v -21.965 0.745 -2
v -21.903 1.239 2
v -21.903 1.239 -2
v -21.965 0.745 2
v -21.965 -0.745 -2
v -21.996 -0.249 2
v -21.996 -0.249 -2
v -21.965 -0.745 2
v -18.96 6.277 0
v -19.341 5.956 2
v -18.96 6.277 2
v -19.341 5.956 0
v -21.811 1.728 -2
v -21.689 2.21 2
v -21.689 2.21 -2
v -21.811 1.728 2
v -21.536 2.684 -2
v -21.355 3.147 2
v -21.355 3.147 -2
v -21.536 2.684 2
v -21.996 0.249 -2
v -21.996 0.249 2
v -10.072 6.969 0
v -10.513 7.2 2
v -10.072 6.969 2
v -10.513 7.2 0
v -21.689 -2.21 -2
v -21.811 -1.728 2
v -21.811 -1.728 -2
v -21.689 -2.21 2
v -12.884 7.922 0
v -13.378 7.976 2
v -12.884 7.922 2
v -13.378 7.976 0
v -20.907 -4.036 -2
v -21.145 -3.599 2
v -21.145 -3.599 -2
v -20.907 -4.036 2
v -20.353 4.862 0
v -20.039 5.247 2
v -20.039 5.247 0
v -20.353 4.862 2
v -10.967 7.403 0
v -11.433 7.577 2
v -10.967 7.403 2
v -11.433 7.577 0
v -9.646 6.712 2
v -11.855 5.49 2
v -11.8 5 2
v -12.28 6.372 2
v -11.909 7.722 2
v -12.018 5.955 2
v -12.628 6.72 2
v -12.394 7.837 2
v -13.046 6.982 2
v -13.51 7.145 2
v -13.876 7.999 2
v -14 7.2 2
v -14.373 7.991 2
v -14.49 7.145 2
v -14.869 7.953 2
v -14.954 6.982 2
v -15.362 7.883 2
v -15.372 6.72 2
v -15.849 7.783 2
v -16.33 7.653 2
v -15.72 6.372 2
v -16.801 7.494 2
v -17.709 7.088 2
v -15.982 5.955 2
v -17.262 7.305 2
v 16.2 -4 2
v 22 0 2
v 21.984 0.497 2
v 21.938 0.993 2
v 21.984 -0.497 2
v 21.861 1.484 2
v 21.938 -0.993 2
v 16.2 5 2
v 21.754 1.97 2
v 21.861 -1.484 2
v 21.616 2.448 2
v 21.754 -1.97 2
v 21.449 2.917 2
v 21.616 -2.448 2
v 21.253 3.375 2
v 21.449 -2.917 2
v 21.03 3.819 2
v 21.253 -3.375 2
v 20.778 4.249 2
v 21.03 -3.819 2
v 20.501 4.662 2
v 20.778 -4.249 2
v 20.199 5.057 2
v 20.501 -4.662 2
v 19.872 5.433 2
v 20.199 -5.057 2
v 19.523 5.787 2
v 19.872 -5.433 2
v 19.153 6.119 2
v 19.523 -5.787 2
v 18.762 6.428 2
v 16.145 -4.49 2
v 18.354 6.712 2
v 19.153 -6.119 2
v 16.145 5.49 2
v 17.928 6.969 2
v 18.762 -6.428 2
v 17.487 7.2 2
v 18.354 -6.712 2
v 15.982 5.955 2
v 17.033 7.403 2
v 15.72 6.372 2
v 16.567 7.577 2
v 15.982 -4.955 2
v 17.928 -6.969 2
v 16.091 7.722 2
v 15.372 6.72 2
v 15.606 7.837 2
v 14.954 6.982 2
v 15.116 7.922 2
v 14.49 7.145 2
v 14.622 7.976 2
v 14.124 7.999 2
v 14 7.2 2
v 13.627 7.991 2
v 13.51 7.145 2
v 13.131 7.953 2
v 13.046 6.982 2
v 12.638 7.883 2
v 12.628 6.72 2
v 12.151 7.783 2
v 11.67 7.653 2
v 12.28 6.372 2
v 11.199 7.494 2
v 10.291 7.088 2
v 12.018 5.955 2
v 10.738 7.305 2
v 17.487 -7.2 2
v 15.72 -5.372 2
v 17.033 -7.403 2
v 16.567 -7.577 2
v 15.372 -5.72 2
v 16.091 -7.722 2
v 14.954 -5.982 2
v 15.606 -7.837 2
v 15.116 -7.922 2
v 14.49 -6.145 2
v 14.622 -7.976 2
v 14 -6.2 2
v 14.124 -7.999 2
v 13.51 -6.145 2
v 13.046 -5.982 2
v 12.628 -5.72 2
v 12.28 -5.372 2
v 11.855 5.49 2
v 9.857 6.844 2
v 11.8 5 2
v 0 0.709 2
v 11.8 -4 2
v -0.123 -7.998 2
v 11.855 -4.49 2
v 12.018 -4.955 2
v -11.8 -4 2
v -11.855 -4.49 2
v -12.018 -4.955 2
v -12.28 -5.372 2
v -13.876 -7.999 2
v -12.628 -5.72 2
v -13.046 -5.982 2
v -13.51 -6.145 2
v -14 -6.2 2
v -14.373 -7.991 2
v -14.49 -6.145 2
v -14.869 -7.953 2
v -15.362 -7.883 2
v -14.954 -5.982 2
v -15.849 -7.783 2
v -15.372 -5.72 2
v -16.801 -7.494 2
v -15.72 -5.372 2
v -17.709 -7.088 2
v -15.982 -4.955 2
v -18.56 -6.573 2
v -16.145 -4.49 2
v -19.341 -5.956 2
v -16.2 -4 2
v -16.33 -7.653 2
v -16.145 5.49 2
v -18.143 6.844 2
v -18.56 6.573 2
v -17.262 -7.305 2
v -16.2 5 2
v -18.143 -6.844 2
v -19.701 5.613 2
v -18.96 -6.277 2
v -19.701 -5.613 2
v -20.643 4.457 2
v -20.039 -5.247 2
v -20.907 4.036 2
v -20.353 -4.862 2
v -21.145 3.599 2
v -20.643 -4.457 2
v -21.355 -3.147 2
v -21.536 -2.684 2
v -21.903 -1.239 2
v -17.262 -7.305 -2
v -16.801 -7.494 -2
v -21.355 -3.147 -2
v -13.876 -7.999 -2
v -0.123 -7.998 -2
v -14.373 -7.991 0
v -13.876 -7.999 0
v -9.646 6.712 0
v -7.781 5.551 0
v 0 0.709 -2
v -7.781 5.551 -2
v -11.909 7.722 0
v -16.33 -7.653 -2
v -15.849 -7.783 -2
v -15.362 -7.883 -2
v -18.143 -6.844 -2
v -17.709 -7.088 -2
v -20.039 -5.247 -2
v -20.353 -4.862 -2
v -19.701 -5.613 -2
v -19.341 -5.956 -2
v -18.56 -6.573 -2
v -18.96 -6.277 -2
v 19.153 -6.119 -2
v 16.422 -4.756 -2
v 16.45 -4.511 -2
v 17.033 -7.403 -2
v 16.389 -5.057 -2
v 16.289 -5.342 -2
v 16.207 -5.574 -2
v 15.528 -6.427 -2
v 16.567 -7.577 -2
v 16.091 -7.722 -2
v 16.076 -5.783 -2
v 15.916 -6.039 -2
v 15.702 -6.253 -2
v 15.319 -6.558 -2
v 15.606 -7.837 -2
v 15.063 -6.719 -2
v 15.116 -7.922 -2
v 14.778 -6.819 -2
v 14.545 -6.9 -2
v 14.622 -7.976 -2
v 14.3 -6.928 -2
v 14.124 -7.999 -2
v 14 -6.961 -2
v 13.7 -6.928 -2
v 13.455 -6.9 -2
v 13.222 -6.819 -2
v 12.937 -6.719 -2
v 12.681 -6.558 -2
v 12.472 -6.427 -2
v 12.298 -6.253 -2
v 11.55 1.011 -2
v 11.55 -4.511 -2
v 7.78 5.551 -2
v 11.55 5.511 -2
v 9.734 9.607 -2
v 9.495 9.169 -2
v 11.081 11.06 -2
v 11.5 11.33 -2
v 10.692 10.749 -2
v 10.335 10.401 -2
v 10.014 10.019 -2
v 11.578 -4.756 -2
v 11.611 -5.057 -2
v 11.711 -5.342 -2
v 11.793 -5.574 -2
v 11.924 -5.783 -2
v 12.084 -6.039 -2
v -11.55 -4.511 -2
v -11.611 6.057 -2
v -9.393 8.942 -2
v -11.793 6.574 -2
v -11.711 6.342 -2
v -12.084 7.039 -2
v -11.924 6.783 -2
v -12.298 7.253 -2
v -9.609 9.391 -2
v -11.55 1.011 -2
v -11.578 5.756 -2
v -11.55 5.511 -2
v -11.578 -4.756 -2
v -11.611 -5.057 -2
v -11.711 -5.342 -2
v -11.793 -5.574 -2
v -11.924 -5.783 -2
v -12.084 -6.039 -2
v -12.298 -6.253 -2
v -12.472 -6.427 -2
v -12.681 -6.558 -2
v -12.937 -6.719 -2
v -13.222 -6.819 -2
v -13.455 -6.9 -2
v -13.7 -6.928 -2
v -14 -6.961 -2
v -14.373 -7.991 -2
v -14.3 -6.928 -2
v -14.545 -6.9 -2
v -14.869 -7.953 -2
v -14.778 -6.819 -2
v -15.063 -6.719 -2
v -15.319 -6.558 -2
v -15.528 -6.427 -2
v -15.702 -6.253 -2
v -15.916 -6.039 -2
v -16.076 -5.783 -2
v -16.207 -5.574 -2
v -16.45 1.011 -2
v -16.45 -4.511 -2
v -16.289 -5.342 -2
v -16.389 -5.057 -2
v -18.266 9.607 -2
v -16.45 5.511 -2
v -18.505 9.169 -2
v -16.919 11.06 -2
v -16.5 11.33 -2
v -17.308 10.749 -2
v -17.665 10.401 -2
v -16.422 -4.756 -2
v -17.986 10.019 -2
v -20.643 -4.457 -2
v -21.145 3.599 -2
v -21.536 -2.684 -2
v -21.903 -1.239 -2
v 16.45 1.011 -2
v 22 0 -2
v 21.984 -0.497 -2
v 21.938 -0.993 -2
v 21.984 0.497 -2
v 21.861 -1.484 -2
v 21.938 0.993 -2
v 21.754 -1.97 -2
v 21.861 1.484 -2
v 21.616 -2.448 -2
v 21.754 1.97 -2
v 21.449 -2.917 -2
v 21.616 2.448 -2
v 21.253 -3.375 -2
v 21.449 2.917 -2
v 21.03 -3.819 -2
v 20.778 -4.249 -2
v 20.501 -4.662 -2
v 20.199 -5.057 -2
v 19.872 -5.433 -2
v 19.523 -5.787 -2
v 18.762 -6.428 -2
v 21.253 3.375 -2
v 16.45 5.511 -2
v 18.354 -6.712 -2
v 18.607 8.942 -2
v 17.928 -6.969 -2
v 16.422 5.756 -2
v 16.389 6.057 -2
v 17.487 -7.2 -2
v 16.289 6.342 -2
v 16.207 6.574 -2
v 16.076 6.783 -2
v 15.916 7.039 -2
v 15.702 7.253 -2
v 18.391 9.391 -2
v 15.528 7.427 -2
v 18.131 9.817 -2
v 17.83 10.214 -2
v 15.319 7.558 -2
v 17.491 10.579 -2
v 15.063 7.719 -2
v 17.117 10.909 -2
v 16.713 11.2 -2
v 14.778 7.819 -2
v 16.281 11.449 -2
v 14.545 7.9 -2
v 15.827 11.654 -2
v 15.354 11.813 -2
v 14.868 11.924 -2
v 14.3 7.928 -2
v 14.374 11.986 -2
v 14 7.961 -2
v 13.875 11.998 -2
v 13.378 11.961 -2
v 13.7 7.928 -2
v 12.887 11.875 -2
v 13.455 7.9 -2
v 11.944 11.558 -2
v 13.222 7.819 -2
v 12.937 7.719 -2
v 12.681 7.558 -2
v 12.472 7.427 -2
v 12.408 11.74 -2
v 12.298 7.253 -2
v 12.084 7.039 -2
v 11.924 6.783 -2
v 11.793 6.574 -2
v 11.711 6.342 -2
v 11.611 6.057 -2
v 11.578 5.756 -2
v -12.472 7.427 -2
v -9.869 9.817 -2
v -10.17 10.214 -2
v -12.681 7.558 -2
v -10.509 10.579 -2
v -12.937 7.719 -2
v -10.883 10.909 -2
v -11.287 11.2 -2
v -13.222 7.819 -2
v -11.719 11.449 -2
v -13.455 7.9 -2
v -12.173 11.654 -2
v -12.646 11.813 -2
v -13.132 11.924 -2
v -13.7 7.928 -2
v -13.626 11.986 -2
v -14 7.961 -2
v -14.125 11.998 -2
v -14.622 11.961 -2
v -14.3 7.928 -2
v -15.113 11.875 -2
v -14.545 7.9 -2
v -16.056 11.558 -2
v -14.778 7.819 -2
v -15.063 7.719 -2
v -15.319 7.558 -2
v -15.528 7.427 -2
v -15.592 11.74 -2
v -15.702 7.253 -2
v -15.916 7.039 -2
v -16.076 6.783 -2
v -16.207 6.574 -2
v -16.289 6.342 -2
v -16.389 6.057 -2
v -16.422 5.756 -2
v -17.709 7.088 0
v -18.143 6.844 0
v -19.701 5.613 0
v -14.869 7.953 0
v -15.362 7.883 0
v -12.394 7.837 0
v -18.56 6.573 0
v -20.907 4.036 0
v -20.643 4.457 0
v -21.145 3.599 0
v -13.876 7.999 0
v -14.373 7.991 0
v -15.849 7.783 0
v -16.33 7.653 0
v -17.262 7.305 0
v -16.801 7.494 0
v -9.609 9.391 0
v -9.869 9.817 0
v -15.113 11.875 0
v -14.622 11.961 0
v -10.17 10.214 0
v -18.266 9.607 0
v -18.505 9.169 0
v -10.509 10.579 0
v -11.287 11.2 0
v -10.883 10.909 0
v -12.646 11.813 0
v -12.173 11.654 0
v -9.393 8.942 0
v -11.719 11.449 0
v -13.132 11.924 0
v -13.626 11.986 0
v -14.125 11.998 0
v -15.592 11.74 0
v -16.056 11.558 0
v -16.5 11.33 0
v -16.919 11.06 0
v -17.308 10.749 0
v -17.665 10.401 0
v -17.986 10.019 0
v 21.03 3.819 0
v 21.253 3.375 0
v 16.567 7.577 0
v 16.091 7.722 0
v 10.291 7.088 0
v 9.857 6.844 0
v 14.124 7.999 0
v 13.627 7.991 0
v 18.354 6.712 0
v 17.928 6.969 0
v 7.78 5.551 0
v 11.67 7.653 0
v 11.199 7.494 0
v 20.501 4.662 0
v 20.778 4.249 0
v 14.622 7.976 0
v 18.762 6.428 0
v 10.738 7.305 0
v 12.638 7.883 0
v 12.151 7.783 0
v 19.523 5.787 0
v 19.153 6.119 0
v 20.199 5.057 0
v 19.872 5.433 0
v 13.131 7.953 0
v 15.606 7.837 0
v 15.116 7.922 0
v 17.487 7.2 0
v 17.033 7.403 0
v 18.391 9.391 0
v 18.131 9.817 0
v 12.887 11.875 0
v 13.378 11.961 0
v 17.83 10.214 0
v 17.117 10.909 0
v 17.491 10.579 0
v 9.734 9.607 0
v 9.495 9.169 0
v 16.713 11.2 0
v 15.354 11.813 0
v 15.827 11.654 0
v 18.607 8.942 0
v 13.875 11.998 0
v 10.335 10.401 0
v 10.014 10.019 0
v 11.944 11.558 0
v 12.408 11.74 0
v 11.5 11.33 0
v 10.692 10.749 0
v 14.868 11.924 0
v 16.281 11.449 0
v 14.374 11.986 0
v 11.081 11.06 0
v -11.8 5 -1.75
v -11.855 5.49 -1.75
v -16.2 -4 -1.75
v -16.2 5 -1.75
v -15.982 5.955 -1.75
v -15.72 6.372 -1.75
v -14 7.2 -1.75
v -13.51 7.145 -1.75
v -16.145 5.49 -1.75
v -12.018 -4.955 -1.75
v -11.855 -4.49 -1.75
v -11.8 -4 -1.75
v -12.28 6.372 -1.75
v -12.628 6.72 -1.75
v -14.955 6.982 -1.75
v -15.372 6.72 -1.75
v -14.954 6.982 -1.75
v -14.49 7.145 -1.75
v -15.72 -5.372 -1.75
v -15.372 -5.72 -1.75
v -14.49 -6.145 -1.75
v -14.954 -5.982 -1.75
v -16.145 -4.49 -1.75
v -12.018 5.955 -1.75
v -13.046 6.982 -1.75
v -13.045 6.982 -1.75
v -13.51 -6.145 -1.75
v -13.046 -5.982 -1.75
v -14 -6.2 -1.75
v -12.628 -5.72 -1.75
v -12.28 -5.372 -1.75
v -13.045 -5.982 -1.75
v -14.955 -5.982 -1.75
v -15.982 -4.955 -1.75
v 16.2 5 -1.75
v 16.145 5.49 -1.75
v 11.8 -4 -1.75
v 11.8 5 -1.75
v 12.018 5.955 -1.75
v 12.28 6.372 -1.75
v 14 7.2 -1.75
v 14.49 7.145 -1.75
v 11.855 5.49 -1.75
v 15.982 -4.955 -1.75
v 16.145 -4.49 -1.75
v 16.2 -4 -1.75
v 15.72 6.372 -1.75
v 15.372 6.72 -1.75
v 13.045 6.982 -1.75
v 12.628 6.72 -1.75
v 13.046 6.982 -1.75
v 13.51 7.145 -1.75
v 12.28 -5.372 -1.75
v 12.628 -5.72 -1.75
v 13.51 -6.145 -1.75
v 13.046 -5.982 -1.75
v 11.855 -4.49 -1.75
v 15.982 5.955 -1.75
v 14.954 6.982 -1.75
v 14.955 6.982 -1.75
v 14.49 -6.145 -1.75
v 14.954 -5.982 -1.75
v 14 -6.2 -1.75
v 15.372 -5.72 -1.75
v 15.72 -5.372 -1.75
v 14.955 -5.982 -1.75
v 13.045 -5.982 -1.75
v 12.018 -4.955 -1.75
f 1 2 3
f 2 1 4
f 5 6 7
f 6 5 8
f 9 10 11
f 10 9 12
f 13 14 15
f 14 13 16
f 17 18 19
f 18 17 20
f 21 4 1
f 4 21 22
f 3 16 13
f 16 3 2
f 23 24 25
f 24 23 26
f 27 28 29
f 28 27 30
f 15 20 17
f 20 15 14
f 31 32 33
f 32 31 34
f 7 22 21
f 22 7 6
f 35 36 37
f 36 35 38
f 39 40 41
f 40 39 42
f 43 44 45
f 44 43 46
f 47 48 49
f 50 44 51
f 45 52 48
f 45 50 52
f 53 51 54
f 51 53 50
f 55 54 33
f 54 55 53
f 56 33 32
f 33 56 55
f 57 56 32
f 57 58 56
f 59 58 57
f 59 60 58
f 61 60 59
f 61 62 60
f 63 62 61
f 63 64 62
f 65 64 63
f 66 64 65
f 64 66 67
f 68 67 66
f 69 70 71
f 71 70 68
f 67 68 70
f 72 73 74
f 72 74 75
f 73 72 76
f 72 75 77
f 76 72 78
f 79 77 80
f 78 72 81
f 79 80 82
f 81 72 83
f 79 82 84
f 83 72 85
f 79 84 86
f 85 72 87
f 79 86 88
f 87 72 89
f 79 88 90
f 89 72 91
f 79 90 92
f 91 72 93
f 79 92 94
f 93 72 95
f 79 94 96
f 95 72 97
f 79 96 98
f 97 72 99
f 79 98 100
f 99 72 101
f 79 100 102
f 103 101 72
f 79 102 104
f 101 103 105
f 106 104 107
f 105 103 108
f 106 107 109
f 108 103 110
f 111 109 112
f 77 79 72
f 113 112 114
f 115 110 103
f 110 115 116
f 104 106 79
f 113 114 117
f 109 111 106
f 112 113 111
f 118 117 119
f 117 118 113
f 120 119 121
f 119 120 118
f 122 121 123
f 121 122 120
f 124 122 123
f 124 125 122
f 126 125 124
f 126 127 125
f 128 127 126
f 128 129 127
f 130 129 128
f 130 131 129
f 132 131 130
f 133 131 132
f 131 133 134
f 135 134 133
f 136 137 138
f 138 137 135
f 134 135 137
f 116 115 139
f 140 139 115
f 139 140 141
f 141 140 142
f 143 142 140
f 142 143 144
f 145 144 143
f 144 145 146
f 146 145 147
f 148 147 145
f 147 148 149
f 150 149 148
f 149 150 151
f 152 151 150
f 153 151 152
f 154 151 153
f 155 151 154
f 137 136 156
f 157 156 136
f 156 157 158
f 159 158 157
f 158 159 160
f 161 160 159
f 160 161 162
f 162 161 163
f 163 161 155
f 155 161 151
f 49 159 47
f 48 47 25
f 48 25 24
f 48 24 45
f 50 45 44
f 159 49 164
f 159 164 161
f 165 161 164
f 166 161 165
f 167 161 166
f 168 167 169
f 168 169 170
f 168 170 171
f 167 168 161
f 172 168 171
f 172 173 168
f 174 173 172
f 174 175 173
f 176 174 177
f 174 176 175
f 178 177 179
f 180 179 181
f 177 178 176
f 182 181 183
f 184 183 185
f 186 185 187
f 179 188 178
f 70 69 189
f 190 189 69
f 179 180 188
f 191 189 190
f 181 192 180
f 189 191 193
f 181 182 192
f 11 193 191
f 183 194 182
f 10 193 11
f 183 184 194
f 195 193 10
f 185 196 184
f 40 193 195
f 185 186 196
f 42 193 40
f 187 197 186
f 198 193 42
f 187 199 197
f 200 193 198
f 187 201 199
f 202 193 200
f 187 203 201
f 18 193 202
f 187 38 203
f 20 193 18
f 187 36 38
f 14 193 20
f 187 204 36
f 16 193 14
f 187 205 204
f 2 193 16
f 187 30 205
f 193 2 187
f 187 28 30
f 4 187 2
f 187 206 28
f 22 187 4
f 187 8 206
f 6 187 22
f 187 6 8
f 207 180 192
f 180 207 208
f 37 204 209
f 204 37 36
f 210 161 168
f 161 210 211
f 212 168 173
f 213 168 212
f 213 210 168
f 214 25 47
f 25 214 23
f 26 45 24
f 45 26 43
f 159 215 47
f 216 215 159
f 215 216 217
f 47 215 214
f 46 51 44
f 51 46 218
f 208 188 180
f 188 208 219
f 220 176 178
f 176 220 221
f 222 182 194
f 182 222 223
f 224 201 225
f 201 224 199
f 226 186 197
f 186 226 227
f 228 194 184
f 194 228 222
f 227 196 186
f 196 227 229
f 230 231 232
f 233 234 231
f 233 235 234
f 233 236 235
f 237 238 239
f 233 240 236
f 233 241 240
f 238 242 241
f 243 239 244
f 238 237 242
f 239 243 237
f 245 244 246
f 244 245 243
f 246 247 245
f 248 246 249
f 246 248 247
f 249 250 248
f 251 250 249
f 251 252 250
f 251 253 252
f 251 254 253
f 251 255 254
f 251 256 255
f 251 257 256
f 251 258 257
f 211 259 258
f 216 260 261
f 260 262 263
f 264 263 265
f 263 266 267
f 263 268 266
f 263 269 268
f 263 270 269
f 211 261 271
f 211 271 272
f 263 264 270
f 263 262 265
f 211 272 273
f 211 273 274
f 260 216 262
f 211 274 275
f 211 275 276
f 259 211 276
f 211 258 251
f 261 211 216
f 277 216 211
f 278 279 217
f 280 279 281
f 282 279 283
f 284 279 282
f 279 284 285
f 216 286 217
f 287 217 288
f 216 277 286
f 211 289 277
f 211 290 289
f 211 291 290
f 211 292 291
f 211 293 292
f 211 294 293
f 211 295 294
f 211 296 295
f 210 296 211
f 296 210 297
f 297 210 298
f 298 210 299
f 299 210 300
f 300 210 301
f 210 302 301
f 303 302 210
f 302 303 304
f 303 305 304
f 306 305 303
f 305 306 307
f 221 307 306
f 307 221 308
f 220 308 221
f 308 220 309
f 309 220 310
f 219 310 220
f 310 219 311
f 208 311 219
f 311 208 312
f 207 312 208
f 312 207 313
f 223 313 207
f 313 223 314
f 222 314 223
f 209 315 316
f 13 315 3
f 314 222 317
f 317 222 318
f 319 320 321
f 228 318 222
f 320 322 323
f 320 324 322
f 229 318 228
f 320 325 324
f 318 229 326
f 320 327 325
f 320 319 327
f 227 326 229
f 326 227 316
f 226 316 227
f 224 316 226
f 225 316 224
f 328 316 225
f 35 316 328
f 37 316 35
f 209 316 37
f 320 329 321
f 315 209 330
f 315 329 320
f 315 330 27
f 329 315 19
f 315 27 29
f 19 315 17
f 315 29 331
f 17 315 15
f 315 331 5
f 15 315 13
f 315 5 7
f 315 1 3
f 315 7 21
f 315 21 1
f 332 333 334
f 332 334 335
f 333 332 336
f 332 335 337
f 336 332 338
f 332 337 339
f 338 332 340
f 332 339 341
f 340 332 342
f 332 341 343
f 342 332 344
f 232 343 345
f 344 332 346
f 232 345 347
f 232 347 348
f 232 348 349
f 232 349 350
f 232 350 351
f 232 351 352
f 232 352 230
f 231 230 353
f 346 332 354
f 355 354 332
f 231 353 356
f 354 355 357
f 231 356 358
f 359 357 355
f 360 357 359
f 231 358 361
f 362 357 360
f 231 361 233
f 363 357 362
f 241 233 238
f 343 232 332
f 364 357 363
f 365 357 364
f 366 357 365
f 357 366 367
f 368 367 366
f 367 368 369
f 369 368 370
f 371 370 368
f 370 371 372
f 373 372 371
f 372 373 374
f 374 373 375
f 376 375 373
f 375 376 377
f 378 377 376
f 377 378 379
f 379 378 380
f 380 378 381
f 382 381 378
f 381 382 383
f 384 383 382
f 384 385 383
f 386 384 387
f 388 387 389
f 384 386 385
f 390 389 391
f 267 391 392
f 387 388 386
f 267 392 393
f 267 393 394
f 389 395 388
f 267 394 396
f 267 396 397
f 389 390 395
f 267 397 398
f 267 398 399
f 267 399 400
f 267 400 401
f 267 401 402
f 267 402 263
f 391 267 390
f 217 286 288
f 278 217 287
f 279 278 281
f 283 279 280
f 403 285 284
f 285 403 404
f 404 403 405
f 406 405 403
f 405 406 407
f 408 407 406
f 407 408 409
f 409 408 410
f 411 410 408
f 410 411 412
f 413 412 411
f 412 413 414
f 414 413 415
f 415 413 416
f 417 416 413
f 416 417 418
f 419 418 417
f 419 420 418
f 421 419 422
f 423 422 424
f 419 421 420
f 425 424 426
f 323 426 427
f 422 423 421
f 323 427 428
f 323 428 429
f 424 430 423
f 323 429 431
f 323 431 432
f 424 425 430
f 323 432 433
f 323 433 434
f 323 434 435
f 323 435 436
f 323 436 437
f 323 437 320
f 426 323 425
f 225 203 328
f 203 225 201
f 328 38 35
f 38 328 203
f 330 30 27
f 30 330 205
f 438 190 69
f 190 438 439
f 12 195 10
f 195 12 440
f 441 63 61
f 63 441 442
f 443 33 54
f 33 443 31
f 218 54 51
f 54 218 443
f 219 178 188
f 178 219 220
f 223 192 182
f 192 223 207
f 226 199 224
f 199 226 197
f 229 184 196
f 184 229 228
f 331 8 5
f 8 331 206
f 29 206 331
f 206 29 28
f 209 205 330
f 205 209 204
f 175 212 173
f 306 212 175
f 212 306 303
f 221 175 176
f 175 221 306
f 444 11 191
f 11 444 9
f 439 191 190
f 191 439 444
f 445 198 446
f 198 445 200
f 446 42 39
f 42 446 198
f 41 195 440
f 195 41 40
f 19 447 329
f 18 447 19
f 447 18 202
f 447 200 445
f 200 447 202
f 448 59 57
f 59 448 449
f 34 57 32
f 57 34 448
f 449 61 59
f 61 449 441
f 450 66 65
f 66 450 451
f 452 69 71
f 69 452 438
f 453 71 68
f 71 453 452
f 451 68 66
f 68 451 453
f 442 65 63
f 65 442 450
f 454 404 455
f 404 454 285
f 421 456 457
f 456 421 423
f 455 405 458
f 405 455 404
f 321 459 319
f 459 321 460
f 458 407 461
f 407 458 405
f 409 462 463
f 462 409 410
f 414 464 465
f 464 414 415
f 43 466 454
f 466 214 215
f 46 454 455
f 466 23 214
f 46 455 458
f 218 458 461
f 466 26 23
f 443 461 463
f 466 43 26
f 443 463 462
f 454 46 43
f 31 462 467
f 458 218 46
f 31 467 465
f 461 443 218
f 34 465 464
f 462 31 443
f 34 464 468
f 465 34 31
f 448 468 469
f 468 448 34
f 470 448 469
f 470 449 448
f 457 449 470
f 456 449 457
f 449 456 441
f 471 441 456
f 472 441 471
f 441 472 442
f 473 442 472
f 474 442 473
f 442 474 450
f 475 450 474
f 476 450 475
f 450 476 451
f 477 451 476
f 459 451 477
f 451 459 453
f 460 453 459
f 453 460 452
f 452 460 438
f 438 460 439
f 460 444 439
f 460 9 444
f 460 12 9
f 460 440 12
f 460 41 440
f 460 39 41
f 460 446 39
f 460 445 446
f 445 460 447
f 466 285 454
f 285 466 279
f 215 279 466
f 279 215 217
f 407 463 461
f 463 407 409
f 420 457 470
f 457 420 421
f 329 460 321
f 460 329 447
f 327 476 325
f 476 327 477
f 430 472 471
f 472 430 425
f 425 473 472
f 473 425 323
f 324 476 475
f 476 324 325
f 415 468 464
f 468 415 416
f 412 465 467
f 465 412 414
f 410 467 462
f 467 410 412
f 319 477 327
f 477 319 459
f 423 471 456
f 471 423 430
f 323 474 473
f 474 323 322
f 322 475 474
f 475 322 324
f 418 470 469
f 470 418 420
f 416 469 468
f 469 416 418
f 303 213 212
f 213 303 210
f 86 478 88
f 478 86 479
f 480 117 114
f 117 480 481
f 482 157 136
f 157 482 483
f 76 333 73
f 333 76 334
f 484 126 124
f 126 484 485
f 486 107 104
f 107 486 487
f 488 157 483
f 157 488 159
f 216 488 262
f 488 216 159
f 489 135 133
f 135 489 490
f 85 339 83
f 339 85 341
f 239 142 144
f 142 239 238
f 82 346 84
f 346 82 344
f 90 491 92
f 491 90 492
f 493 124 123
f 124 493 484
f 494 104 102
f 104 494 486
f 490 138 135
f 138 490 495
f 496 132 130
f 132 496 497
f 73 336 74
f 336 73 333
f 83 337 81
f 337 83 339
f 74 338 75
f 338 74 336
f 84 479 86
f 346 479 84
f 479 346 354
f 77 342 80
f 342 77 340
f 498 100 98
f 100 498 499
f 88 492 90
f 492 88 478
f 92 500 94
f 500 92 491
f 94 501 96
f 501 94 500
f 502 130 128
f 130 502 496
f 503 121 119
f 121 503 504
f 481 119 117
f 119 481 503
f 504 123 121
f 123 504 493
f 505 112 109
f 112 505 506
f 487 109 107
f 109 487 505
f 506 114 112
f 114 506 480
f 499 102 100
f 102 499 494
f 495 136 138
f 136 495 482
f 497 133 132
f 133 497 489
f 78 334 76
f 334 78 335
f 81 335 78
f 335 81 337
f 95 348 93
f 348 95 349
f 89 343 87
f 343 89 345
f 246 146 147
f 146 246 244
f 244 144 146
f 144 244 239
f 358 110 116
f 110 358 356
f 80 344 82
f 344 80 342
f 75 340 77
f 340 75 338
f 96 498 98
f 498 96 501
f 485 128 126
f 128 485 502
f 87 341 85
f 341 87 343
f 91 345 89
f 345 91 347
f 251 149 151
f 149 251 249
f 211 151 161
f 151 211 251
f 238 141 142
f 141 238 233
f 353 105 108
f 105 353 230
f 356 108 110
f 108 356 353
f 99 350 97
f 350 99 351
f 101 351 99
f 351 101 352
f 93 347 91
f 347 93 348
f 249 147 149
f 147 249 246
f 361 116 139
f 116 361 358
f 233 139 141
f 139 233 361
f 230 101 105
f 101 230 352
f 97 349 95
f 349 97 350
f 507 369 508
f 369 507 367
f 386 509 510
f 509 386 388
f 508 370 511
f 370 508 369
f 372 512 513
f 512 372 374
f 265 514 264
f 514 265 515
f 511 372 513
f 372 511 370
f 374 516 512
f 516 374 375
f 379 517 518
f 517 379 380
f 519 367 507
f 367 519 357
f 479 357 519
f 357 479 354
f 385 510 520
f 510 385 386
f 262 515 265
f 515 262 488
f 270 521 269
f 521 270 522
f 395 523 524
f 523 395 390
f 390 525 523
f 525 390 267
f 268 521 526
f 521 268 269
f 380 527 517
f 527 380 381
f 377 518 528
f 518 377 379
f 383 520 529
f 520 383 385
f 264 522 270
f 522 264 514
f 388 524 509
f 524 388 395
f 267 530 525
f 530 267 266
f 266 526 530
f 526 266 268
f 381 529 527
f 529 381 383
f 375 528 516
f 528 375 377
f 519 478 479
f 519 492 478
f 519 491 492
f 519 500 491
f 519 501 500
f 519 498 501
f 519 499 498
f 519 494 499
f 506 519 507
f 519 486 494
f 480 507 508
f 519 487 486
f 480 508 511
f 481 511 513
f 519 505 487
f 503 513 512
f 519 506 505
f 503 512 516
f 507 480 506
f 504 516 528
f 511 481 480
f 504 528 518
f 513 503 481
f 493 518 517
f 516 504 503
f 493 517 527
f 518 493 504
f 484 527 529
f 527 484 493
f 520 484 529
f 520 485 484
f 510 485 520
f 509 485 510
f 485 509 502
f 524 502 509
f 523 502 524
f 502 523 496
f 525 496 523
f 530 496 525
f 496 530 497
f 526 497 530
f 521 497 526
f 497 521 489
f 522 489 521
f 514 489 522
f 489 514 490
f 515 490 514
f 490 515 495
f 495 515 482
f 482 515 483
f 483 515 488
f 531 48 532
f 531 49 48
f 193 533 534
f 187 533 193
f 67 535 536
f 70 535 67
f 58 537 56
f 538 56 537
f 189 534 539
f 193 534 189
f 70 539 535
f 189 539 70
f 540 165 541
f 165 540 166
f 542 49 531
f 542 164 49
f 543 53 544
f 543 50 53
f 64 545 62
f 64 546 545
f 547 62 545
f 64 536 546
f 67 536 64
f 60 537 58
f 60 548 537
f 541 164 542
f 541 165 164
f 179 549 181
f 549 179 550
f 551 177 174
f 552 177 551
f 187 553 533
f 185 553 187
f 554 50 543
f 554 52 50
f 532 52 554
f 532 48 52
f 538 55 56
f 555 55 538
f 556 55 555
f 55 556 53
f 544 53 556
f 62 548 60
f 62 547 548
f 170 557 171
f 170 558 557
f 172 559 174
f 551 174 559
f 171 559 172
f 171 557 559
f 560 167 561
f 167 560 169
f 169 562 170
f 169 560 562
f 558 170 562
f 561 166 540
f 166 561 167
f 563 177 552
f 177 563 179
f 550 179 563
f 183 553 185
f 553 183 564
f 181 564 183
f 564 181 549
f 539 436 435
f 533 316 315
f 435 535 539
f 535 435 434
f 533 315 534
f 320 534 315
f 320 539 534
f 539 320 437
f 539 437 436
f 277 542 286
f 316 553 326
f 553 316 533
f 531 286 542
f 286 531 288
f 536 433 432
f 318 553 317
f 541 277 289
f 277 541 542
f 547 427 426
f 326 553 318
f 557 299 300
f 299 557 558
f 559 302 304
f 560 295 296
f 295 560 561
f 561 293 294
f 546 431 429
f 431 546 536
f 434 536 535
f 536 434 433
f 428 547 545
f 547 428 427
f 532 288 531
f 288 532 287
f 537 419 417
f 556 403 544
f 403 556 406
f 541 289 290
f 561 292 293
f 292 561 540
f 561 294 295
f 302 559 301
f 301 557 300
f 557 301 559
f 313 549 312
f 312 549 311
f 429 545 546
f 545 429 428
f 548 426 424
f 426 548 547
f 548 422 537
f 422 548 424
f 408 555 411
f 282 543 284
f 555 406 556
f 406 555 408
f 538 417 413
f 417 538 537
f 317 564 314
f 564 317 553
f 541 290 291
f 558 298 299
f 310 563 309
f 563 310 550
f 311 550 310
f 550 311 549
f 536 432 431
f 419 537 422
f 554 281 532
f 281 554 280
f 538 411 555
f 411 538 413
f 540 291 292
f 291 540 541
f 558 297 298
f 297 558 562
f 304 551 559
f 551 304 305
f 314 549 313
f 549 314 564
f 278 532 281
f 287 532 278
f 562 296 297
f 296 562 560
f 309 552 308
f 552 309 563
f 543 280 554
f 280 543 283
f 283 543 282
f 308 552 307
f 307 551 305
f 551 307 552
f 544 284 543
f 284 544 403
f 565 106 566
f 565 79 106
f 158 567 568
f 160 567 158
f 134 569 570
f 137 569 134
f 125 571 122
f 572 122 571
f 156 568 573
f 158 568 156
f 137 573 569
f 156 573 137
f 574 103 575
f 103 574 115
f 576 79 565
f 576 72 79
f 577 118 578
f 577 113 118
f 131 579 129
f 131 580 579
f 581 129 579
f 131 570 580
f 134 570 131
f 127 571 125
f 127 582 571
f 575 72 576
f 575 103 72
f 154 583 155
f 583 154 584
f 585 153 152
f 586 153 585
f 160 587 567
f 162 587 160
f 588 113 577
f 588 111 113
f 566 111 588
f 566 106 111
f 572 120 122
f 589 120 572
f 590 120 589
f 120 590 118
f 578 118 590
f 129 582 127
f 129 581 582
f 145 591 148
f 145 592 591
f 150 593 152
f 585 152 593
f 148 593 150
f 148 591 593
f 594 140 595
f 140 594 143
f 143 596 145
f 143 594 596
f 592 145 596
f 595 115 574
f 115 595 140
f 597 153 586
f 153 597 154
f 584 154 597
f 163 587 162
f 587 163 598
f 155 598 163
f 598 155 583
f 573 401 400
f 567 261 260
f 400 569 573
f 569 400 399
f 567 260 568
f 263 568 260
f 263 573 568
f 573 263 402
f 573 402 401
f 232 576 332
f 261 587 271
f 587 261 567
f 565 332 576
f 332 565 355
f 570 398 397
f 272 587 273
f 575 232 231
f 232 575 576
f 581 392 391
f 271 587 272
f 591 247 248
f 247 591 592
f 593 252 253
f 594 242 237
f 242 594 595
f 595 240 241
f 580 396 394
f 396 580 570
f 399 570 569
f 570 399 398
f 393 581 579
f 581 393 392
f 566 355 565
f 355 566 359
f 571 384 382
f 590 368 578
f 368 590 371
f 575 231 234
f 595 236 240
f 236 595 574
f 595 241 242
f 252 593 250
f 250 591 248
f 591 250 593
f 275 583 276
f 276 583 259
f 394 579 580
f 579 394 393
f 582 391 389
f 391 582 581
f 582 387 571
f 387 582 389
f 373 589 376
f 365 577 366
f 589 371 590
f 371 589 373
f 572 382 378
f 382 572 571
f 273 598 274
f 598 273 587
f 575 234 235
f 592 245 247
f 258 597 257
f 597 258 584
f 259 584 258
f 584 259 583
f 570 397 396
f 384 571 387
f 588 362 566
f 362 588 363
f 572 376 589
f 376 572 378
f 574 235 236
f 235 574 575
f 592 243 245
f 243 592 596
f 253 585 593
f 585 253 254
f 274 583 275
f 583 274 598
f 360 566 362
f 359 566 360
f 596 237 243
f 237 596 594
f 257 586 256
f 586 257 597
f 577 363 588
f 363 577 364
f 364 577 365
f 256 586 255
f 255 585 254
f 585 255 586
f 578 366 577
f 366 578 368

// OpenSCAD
include <cloverplus_v3_utils.scad>;

//---------------------------------------------------------------------------------------------------- 
// CloverPlus v3 Bed Clamp by pbmax (mpeterson333/@/gmail.com)
//---------------------------------------------------------------------------------------------------- 
// This part secures a glass plate of about 2mm thickness to the CloverPlus 3D printer.  3 parts are 
// required to mount the bed and each part requires two M4 x 12mm screws and 2 M4 lock nuts to secure
// to the bottom frame part.
//
// Recommended glass sizing for the standard top and bottom part sizing is 115 - 120mm in diameter.
//
// Note that some variables used in this module can be found in cloverplus_v3_utils.scad.
//---------------------------------------------------------------------------------------------------- 

cloverplus_v3_bedclamp();

module cloverplus_v3_bedclamp(mockup_build = false)
{
  $fs = 0.5;
  $fa = 0.5;
  
  base_mount_hole_d = 4.4;
  slot_length = 9;
  slot_offset = 0.5;
  
  base_mount_thick = 4;
  base_mount_hole_spacing = leg_hole_y_offset * 2;
  base_mount_width = 16;
  
  glass_thick = 2;
  
  clamp_tab_length = 4;
  clamp_tab_thick = 2;
  clamp_tab_width = 10;
  
  // Flip it over for modeling
  if (mockup_build)
  {
    rotate([0, 180, 0])
      bed_clamp();
  }
  else
  {
      bed_clamp();
  }
  
  module bed_clamp()
  {
    // Bed mount
    difference()
    {
      union()
      {
        // base shape and tabs with slots
        for (i = [-1,1])
        {
          hull()
          {
            translate([i*base_mount_hole_spacing*0.5, 0, 0])
              cylinder(d=base_mount_width, h=base_mount_thick, center=true);
            translate([0, -base_mount_width*0.25, 0])
              cylinder(d=base_mount_width*0.5, h=base_mount_thick, center=true);
          }
          hull()
          {
            translate([i*base_mount_hole_spacing*0.5, 0, -base_mount_thick*0.5+clamp_tab_thick*0.5])
            {
              cylinder(d=base_mount_width, h=clamp_tab_thick, center=true);
              translate([0, base_mount_width*0.5+clamp_tab_length-clamp_tab_width*0.5, 0])
                cylinder(d=clamp_tab_width, h=clamp_tab_thick, center=true);
            }
          }
        }
      
      }
    
      // Slots
      for (i = [-1,1])
        translate([i*base_mount_hole_spacing*0.5, slot_offset, 0])
          mount_slot(base_mount_hole_d, base_mount_thick+1, slot_length, smash_comp=true, smash_comp_invert=true);
    }
  }
}
